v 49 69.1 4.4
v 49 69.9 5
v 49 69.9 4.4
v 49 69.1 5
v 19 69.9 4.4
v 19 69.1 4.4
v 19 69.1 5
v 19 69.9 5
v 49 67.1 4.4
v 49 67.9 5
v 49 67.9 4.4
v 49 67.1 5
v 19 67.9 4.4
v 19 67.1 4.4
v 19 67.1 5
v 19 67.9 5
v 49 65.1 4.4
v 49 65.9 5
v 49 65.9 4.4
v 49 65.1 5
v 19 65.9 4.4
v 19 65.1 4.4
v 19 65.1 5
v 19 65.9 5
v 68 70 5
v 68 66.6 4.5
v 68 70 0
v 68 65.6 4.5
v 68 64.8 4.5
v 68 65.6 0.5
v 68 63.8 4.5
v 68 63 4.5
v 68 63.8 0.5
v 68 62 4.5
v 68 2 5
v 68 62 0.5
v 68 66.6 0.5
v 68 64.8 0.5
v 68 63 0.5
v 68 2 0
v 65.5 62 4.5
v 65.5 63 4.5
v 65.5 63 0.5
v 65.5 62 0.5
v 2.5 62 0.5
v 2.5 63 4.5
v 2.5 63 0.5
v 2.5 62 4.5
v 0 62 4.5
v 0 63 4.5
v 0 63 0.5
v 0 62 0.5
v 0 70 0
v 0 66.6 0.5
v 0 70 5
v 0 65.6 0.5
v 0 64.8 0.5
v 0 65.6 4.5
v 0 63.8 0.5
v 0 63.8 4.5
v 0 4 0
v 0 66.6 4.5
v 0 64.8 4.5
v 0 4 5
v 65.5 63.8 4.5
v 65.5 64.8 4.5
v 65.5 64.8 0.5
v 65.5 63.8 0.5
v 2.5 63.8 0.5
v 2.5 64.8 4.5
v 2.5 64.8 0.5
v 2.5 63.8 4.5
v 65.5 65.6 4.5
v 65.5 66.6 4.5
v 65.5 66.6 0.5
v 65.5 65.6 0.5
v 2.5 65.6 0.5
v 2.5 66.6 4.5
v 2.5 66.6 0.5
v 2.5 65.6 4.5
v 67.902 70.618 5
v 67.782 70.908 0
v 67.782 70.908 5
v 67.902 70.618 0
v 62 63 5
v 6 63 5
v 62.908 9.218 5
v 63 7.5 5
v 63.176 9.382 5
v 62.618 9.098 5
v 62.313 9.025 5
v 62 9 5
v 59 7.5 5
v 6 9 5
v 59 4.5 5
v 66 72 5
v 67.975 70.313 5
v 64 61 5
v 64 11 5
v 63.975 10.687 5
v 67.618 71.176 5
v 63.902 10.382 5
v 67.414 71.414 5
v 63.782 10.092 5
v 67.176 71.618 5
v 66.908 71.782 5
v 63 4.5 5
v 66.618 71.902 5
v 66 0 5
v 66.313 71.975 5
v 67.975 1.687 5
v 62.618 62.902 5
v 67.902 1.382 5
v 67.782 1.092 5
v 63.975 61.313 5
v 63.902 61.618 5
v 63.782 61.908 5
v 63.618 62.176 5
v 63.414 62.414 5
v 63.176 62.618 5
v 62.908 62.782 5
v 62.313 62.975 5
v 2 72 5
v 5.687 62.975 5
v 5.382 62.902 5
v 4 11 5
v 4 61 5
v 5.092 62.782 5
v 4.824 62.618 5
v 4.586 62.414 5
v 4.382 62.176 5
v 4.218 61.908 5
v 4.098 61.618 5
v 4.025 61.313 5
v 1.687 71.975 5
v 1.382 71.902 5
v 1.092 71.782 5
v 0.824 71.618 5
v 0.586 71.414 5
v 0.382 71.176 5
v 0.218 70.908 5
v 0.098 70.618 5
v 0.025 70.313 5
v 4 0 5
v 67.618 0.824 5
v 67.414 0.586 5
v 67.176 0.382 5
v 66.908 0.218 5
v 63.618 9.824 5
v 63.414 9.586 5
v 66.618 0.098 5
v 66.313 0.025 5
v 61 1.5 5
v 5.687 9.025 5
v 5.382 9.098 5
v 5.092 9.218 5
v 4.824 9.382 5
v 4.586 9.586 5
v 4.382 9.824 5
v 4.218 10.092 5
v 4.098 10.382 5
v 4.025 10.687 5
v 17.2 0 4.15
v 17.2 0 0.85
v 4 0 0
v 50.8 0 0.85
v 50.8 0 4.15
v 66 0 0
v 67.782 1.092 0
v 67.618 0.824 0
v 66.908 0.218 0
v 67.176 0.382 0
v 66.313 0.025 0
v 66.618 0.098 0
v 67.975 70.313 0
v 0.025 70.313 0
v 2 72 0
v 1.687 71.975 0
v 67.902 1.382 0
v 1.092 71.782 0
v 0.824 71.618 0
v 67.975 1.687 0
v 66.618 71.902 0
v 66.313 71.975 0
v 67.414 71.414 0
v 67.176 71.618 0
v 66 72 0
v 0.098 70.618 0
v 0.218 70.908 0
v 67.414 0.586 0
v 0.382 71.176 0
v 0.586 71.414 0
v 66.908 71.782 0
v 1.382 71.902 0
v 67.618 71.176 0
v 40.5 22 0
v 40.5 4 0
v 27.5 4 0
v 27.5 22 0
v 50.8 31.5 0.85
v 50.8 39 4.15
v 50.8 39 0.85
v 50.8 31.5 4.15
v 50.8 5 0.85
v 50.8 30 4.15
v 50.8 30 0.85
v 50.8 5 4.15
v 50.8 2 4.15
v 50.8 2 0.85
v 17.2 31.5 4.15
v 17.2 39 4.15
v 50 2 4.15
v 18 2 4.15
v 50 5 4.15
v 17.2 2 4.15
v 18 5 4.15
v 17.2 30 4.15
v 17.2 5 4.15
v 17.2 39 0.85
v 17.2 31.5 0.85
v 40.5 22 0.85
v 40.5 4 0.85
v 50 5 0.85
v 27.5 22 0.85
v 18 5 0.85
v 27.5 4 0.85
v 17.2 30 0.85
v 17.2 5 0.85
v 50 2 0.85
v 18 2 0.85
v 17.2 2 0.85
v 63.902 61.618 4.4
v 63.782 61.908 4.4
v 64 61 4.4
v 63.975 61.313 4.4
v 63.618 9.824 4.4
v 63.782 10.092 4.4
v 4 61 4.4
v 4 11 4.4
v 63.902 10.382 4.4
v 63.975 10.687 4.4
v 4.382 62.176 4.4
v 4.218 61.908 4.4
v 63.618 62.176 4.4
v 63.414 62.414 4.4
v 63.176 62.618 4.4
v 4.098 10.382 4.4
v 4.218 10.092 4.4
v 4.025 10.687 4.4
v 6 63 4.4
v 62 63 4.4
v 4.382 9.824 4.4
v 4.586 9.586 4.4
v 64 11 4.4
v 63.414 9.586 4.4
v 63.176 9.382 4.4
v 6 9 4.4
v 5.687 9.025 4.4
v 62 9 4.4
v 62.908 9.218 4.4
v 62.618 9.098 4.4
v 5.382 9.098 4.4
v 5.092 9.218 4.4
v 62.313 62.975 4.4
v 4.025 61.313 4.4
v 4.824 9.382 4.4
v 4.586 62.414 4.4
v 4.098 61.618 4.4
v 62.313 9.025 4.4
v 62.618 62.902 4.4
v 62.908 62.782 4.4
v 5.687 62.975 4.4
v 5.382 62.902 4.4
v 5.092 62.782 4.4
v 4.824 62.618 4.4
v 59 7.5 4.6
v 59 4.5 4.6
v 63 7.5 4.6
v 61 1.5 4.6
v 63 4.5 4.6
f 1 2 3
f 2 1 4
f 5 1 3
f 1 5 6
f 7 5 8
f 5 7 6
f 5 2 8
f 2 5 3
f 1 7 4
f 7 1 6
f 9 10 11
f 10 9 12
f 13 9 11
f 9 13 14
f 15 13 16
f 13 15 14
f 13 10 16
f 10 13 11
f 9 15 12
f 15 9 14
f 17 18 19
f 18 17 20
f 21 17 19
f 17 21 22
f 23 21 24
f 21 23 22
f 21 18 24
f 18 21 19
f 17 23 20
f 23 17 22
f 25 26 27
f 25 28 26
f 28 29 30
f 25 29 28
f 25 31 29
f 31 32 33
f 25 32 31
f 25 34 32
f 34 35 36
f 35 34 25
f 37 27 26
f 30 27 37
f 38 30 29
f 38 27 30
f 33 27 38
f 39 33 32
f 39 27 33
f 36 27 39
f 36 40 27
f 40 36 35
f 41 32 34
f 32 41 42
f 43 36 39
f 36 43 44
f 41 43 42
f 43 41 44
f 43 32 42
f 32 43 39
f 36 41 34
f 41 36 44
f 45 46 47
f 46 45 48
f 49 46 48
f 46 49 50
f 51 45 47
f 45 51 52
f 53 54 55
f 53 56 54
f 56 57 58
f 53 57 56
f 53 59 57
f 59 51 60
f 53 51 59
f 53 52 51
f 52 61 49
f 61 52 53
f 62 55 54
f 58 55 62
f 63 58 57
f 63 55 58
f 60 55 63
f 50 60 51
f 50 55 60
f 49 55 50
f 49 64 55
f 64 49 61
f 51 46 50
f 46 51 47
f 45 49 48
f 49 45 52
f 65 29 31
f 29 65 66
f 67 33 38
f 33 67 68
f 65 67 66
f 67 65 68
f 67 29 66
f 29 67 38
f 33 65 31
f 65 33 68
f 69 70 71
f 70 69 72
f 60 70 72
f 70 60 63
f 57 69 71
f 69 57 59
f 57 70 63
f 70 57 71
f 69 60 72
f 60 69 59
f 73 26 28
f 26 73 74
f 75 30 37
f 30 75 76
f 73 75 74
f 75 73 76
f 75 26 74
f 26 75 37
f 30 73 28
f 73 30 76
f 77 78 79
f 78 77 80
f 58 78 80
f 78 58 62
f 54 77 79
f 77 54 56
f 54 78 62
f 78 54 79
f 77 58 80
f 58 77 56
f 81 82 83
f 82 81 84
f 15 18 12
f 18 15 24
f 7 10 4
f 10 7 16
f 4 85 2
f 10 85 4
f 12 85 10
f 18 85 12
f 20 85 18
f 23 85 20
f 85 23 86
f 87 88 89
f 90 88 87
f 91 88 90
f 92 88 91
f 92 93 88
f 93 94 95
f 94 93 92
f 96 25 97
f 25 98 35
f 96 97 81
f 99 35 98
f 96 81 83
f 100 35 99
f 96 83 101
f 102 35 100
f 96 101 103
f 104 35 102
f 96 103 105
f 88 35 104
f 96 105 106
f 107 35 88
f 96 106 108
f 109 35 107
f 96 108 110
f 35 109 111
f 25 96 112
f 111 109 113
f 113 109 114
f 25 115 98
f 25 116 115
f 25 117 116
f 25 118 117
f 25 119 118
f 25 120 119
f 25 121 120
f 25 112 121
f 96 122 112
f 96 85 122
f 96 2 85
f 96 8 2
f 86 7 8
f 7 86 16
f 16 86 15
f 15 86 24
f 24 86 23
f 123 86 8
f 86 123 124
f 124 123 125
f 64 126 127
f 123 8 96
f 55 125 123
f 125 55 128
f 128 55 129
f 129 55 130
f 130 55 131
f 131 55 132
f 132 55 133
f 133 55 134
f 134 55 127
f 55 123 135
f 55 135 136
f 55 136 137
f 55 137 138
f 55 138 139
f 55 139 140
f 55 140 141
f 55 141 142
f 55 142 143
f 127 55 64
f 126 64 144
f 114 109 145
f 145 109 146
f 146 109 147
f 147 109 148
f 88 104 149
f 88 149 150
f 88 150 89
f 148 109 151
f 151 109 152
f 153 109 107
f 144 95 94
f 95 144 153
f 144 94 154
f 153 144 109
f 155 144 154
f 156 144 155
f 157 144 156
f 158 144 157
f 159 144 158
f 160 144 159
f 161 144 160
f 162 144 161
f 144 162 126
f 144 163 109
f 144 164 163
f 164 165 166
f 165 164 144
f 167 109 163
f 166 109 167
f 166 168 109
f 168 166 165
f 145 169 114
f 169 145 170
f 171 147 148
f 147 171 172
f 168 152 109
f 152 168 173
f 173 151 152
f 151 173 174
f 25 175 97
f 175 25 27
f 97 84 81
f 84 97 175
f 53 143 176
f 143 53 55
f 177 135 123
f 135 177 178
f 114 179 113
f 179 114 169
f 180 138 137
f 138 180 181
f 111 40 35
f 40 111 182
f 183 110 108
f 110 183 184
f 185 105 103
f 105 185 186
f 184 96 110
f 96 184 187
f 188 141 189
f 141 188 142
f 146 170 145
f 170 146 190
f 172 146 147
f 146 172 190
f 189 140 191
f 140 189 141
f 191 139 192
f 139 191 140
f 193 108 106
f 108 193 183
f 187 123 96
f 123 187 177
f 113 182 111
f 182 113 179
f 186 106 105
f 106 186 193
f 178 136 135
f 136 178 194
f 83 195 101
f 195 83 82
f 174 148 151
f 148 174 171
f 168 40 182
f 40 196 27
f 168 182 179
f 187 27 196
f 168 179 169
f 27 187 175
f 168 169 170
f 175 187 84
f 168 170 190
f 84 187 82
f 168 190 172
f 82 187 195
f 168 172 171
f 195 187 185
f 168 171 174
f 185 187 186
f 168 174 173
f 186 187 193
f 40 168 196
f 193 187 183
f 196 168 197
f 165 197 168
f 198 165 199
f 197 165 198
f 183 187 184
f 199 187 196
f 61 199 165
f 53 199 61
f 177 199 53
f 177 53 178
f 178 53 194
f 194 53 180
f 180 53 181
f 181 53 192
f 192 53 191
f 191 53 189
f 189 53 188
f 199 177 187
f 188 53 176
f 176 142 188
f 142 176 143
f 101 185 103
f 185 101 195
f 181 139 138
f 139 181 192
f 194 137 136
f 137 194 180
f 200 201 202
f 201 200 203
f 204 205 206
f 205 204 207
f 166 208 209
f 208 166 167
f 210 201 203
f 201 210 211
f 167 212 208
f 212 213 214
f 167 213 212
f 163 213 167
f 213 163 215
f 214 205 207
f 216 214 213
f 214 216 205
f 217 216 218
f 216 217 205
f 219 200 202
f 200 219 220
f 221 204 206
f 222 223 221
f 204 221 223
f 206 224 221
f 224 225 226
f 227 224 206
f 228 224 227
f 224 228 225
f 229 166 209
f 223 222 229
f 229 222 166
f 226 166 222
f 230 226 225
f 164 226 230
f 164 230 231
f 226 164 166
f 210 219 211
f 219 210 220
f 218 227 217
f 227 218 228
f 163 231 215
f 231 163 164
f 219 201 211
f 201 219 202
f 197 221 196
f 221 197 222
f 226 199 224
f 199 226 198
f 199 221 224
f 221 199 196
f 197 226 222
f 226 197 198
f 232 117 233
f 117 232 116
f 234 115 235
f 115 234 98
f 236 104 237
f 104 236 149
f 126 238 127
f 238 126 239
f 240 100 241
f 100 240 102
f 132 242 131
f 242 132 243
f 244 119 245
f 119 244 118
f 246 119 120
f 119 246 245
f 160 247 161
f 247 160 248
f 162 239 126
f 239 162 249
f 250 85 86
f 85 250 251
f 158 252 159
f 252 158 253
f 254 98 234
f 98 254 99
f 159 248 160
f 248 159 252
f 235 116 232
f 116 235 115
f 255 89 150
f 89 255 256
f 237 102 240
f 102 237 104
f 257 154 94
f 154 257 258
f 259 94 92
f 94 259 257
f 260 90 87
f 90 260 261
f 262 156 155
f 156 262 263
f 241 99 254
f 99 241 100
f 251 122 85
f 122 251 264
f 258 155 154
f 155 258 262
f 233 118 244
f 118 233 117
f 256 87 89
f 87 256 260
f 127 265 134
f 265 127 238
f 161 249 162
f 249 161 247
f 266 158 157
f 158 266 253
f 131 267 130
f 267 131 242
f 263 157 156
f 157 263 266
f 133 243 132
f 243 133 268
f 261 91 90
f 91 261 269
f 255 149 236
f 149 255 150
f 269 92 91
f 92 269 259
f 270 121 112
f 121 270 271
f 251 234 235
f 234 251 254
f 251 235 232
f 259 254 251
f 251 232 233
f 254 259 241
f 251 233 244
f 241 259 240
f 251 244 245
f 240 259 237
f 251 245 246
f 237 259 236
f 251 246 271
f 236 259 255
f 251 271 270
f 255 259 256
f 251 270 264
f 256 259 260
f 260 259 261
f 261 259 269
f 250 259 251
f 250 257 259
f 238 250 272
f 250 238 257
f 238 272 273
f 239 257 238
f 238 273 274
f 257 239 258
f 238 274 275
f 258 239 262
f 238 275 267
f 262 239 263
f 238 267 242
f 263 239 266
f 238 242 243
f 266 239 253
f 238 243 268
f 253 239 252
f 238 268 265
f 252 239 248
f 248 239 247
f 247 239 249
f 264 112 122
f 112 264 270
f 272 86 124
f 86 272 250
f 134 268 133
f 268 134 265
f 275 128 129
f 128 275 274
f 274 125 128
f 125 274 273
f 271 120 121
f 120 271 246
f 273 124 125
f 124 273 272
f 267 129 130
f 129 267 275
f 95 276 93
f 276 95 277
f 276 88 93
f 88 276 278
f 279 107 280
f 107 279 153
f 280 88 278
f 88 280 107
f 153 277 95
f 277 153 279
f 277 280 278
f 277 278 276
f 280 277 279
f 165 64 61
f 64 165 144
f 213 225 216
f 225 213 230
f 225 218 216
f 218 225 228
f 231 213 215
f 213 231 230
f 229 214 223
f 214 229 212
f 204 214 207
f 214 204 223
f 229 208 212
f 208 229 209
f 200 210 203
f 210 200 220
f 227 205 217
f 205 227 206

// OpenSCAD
// MSD MiniDisc-style SD shell – WORKING VERSION WITH ROUNDED EDGES + VISIBLE BOTTOM SLOT
// with captive tray using side latches + tray notches

// Overall body
body_w = 68;
body_h = 72;
body_t = 5;

// Corner radii
corner_r_outer = 2;   // outer shell corners
corner_r_inner = 2;   // inner window corners

// Label recess (big window)
label_margin_x = 4;
label_margin_y = 9;
label_d        = 0.6;

// Top grips
grip_w       = 30;
grip_h       = 0.8;
grip_d       = 0.6;
grip_spacing = 1.2;
grip_count   = 3;

// Center grips in the top margin (label_margin_y)
// Total height of grips = count*h + (count-1)*spacing
_grip_total_h = grip_count*grip_h + (grip_count-1)*grip_spacing;
_grip_top_margin = (label_margin_y - _grip_total_h) / 2;
grip_offset_y = _grip_top_margin + grip_h;

// Tray + SD parameters
tray_w   = 33;
tray_h   = 25;    // shorter than SD card so contacts stick out
tray_t   = 2.5;   // thickened slightly for strength

sd_w       = 24;
sd_l       = 32;
pocket_w   = sd_w + 1.0;
nose_buf   = 4;

// pocket fills from the back of the tray up to the "nose"
pocket_l   = tray_h - nose_buf;   // 25 - 4 = 21mm
pocket_d   = 1.6;

// Slot / cavity sizing
slot_height    = 3.3;       // increased for SD clearance (stack is ~3.0mm)
slot_clearance = 0.3;       // clearance each side in X
cav_w          = tray_w + 2*slot_clearance;  // snug slot around tray
cav_h          = 42;        // depth into the shell (travel)
cav_t          = slot_height;
cavity_x       = (body_w - cav_w)/2;  // centre slot under label

// Finger access hole in underside (to push tray)
finger_hole_w       = tray_w - 20;   // a bit narrower than tray
finger_hole_len     = 18;           // how far up into the body
finger_hole_marginY = 4;            // gap from bottom edge
finger_hole_depth   = 2.0;          // depth from underside (must be < body_t)

// Tray captive system – shell latches + tray notches
latch_depth_x   = 0.8;   // how far latches protrude into slot from each side
latch_height_z  = slot_height;   // full height of slot
latch_len_y     = 3.0;   // length along travel direction
latch_offset_y  = 2.0;   // how far inside from slot opening (y=0)

inner_stop_y    = 30;    // where tray hits inner stop (tweak to taste)
inner_stop_thk  = 1.5;

// Tray notches (matching latches)
notch_depth_x     = latch_depth_x + 0.3; // a touch deeper than latch for clearance
notch_height_z    = 1.6;
notch_len_y       = 3.2;
notch_from_front  = 6.0;         // distance back from tray front edge

// ---------- helper: 2D rounded rectangle ----------
module rounded_rect_2d(w,h,r){
    r = min(r, min(w,h)/2);
    translate([r,r])
    minkowski(){
        square([w-2*r, h-2*r], center=false);
        circle(r=r, $fn=40);
    }
}

// ---------- helper: print-friendly ramp lip ----------
module printable_lip(depth, length, height) {
    polyhedron(
        points = [
            [0,0,0],                       // 0 bottom inside
            [depth,0,0],                   // 1 bottom outer
            [0,length,0],                  // 2 bottom inside front
            [depth,length,0],              // 3 bottom outer front

            [0,0,height],                  // 4 top inside
            [depth*0.2,0,height],          // 5 angled top
            [0,length,height],             // 6 top inside front
            [depth*0.2,length,height]      // 7 angled top front
        ],
        faces = [
            [0,1,3,2],    // bottom
            [0,2,6,4],    // inside wall
            [1,5,7,3],    // outside sloped wall
            [4,6,7,5],    // top
            [0,4,5,1],    // back
            [2,3,7,6]     // front
        ]
    );
}

// ---------- SHELL ----------
module miniDiscShell() {
    union() {
        // Main body with all subtractions
        difference() {
            // 1) OUTER BODY WITH ROUNDED CORNERS
            linear_extrude(height = body_t)
                rounded_rect_2d(body_w, body_h, corner_r_outer);

            // 2) INTERNAL TRAY CAVITY – centred slot, open at bottom edge only
            translate([
                cavity_x,                    // centre in X
                -3,                          // extend a bit below bottom edge to open it
                (body_t - cav_t)/2           // centre vertically: plastic above and below
            ])
                cube([cav_w, cav_h, cav_t], center=false);

            // 2b) RECTANGULAR FINGER HOLE IN UNDERSIDE
            translate([
                (body_w - finger_hole_w)/2,  // centred left–right under the tray
                finger_hole_marginY,         // a few mm up from bottom edge
                0                            // start at underside
            ])
                cube([finger_hole_w, finger_hole_len, finger_hole_depth], center=false);

            // 3) BIG LABEL RECESS, CENTRED, ALSO ROUNDED
            label_w = body_w - 2*label_margin_x;
            label_h = body_h - 2*label_margin_y;
            translate([
                label_margin_x,
                label_margin_y,
                body_t - label_d
            ])
                linear_extrude(height = label_d + 0.1)
                    rounded_rect_2d(label_w, label_h, corner_r_inner);

            // 4) TOP GRIP GROOVES
            for (i = [0:grip_count-1]) {
                translate([
                    (body_w - grip_w)/2,
                    body_h - grip_offset_y - (i * (grip_h + grip_spacing)),
                    body_t - grip_d
                ])
                    cube([grip_w, grip_h, grip_d + 0.1], center=false);
            }

            // 5) SMALL ARROW ENGRAVED BOTTOM-RIGHT (pointing DOWN)
            arrow_d = 0.4;
            arrow_w = 4;
            arrow_h = 6;

            translate([body_w-9, 4.5, body_t - arrow_d])
                linear_extrude(height = arrow_d + 0.1) {
                    union() {
                        square([arrow_w, arrow_h-3], center=false);
                        translate([arrow_w/2, 0, 0])
                            polygon([
                                [-arrow_w/2, 0],
                                [ arrow_w/2, 0],
                                [0, -(arrow_h-3)]
                            ]);
                    }
                }

            // 6) SIDE GRIP VENTS (both sides)
            side_grip_count   = 3;
            side_grip_w       = 1;   // along Y
            side_grip_h       = 4.0;   // along Z
            side_grip_gap     = 0.8;
            side_grip_x_depth = 2.5;   // into body (enough to cut fully)
            side_grip_y_offset = 62;    // up from bottom edge
            side_grip_z_offset = 0.5;  // up from underside

            for (i = [0:side_grip_count-1]) {
                // Right side
                translate([
                    body_w - side_grip_x_depth,
                    side_grip_y_offset + i*(side_grip_w + side_grip_gap),
                    side_grip_z_offset
                ])
                    cube([side_grip_x_depth, side_grip_w, side_grip_h], center=false);

                // Left side
                translate([
                    0,
                    side_grip_y_offset + i*(side_grip_w + side_grip_gap),
                    side_grip_z_offset
                ])
                    cube([side_grip_x_depth, side_grip_w, side_grip_h], center=false);
            }

            // 9) BOTTOM-LEFT DIAGONAL CUTOUT
            // Cut a 45-degree chamfer at [0,0] using a polygon
            // The cut line will be roughly x + y = chamfer_size
            chamfer_size = 4;
            translate([0,0,-1])
                linear_extrude(height=body_t+2)
                    polygon(points=[
                        [-5, -5],           // outside corner
                        [chamfer_size, -5], // bottom edge point
                        [chamfer_size, 0],  // start of chamfer on X
                        [0, chamfer_size],  // end of chamfer on Y
                        [-5, chamfer_size]  // left edge point
                    ]);
        } // end difference()

        // 7) SIDE LATCHES INSIDE SLOT (outer stop, one each side)
        // Left latch
        translate([
            cavity_x,                      // flush with left cavity wall
            latch_offset_y,                // inside from opening
            (body_t - cav_t)/2             // centred vertically in slot
        ])
            cube([latch_depth_x, latch_len_y, cav_t], center=false);

        // Right latch
        translate([
            cavity_x + cav_w - latch_depth_x,  // flush with right cavity wall
            latch_offset_y,
            (body_t - cav_t)/2
        ])
            cube([latch_depth_x, latch_len_y, cav_t], center=false);

        // 8) INNER STOP RIB (prevents tray vanishing completely inside)
        translate([
            cavity_x,
            inner_stop_y,
            (body_t - cav_t)/2
        ])
            cube([cav_w, inner_stop_thk, cav_t], center=false);
    }
}

// ---------- TRAY ----------
module sdTray() {
    // Base tray with SD pocket carved out + side notches for latches
    difference() {
        union() {
            // main tray body
            cube([tray_w, tray_h, tray_t], center = false);

            // thumb tab at the front
            tab_w = 20;
            tab_l = 3;
            translate([ (tray_w - tab_w)/2,
                        tray_h - tab_l,
                        0 ])
                cube([tab_w, tab_l, tray_t], center = false);
        }

        // SD card pocket: starts at back (y=0), stops at nose_buf from front
        translate([
            (tray_w - pocket_w)/2,
            0,
            tray_t - pocket_d
        ])
            cube([pocket_w, pocket_l, pocket_d], center = false);

        // Side notches for shell latches (one each side, near front)
        notch_y = tray_h - notch_from_front - notch_len_y;

        // Left notch
        translate([
            0,
            notch_y,
            tray_t - notch_height_z
        ])
            cube([notch_depth_x, notch_len_y, notch_height_z], center=false);

        // Right notch
        translate([
            tray_w - notch_depth_x,
            notch_y,
            tray_t - notch_height_z
        ])
            cube([notch_depth_x, notch_len_y, notch_height_z], center=false);
    }

    // Internal retaining lips (print-friendly ramps) – hold SD card in
    lip_depth  = 0.4;   // reduced for smoother snap (was 0.8)
    lip_height = 0.8;   // vertical size (Z)
    lip_len    = 3.0;   // length along Y

    innerL = (tray_w - pocket_w)/2;   // inner left wall X
    innerR = tray_w - innerL;         // inner right wall X

    // Left lip – attached to left inner wall, ramp inward
    translate([
        innerL,
        pocket_l - lip_len - 0.5,     // near front of pocket
        tray_t - lip_height           // up at pocket roof
    ])
        printable_lip(lip_depth, lip_len, lip_height);

    // Right lip – mirrored, attached to right inner wall, ramp inward
    translate([
        innerR,
        pocket_l - lip_len - 0.5,
        tray_t - lip_height
    ])
        mirror([1,0,0])
            printable_lip(lip_depth, lip_len, lip_height);

    // Side bumps for tray friction in shell
    bump_w = 1.5;
    bump_l = 3;
    bump_h = 1.5;

    translate([0, 4, (tray_t - bump_h)/2])
        cube([bump_w, bump_l, bump_h], center = false);

    translate([tray_w - bump_w, 4, (tray_t - bump_h)/2])
        cube([bump_w, bump_l, bump_h], center = false);
}

// ===== PREVIEW / EXPORT =====

// Shell only:
 miniDiscShell();

// Tray only:
// sdTray();

// Combined preview (shell + tray):
//miniDiscShell();
//translate([ (body_w - tray_w)/2, 0, (body_t - tray_t)/2 ])
//    color("red") sdTray();
